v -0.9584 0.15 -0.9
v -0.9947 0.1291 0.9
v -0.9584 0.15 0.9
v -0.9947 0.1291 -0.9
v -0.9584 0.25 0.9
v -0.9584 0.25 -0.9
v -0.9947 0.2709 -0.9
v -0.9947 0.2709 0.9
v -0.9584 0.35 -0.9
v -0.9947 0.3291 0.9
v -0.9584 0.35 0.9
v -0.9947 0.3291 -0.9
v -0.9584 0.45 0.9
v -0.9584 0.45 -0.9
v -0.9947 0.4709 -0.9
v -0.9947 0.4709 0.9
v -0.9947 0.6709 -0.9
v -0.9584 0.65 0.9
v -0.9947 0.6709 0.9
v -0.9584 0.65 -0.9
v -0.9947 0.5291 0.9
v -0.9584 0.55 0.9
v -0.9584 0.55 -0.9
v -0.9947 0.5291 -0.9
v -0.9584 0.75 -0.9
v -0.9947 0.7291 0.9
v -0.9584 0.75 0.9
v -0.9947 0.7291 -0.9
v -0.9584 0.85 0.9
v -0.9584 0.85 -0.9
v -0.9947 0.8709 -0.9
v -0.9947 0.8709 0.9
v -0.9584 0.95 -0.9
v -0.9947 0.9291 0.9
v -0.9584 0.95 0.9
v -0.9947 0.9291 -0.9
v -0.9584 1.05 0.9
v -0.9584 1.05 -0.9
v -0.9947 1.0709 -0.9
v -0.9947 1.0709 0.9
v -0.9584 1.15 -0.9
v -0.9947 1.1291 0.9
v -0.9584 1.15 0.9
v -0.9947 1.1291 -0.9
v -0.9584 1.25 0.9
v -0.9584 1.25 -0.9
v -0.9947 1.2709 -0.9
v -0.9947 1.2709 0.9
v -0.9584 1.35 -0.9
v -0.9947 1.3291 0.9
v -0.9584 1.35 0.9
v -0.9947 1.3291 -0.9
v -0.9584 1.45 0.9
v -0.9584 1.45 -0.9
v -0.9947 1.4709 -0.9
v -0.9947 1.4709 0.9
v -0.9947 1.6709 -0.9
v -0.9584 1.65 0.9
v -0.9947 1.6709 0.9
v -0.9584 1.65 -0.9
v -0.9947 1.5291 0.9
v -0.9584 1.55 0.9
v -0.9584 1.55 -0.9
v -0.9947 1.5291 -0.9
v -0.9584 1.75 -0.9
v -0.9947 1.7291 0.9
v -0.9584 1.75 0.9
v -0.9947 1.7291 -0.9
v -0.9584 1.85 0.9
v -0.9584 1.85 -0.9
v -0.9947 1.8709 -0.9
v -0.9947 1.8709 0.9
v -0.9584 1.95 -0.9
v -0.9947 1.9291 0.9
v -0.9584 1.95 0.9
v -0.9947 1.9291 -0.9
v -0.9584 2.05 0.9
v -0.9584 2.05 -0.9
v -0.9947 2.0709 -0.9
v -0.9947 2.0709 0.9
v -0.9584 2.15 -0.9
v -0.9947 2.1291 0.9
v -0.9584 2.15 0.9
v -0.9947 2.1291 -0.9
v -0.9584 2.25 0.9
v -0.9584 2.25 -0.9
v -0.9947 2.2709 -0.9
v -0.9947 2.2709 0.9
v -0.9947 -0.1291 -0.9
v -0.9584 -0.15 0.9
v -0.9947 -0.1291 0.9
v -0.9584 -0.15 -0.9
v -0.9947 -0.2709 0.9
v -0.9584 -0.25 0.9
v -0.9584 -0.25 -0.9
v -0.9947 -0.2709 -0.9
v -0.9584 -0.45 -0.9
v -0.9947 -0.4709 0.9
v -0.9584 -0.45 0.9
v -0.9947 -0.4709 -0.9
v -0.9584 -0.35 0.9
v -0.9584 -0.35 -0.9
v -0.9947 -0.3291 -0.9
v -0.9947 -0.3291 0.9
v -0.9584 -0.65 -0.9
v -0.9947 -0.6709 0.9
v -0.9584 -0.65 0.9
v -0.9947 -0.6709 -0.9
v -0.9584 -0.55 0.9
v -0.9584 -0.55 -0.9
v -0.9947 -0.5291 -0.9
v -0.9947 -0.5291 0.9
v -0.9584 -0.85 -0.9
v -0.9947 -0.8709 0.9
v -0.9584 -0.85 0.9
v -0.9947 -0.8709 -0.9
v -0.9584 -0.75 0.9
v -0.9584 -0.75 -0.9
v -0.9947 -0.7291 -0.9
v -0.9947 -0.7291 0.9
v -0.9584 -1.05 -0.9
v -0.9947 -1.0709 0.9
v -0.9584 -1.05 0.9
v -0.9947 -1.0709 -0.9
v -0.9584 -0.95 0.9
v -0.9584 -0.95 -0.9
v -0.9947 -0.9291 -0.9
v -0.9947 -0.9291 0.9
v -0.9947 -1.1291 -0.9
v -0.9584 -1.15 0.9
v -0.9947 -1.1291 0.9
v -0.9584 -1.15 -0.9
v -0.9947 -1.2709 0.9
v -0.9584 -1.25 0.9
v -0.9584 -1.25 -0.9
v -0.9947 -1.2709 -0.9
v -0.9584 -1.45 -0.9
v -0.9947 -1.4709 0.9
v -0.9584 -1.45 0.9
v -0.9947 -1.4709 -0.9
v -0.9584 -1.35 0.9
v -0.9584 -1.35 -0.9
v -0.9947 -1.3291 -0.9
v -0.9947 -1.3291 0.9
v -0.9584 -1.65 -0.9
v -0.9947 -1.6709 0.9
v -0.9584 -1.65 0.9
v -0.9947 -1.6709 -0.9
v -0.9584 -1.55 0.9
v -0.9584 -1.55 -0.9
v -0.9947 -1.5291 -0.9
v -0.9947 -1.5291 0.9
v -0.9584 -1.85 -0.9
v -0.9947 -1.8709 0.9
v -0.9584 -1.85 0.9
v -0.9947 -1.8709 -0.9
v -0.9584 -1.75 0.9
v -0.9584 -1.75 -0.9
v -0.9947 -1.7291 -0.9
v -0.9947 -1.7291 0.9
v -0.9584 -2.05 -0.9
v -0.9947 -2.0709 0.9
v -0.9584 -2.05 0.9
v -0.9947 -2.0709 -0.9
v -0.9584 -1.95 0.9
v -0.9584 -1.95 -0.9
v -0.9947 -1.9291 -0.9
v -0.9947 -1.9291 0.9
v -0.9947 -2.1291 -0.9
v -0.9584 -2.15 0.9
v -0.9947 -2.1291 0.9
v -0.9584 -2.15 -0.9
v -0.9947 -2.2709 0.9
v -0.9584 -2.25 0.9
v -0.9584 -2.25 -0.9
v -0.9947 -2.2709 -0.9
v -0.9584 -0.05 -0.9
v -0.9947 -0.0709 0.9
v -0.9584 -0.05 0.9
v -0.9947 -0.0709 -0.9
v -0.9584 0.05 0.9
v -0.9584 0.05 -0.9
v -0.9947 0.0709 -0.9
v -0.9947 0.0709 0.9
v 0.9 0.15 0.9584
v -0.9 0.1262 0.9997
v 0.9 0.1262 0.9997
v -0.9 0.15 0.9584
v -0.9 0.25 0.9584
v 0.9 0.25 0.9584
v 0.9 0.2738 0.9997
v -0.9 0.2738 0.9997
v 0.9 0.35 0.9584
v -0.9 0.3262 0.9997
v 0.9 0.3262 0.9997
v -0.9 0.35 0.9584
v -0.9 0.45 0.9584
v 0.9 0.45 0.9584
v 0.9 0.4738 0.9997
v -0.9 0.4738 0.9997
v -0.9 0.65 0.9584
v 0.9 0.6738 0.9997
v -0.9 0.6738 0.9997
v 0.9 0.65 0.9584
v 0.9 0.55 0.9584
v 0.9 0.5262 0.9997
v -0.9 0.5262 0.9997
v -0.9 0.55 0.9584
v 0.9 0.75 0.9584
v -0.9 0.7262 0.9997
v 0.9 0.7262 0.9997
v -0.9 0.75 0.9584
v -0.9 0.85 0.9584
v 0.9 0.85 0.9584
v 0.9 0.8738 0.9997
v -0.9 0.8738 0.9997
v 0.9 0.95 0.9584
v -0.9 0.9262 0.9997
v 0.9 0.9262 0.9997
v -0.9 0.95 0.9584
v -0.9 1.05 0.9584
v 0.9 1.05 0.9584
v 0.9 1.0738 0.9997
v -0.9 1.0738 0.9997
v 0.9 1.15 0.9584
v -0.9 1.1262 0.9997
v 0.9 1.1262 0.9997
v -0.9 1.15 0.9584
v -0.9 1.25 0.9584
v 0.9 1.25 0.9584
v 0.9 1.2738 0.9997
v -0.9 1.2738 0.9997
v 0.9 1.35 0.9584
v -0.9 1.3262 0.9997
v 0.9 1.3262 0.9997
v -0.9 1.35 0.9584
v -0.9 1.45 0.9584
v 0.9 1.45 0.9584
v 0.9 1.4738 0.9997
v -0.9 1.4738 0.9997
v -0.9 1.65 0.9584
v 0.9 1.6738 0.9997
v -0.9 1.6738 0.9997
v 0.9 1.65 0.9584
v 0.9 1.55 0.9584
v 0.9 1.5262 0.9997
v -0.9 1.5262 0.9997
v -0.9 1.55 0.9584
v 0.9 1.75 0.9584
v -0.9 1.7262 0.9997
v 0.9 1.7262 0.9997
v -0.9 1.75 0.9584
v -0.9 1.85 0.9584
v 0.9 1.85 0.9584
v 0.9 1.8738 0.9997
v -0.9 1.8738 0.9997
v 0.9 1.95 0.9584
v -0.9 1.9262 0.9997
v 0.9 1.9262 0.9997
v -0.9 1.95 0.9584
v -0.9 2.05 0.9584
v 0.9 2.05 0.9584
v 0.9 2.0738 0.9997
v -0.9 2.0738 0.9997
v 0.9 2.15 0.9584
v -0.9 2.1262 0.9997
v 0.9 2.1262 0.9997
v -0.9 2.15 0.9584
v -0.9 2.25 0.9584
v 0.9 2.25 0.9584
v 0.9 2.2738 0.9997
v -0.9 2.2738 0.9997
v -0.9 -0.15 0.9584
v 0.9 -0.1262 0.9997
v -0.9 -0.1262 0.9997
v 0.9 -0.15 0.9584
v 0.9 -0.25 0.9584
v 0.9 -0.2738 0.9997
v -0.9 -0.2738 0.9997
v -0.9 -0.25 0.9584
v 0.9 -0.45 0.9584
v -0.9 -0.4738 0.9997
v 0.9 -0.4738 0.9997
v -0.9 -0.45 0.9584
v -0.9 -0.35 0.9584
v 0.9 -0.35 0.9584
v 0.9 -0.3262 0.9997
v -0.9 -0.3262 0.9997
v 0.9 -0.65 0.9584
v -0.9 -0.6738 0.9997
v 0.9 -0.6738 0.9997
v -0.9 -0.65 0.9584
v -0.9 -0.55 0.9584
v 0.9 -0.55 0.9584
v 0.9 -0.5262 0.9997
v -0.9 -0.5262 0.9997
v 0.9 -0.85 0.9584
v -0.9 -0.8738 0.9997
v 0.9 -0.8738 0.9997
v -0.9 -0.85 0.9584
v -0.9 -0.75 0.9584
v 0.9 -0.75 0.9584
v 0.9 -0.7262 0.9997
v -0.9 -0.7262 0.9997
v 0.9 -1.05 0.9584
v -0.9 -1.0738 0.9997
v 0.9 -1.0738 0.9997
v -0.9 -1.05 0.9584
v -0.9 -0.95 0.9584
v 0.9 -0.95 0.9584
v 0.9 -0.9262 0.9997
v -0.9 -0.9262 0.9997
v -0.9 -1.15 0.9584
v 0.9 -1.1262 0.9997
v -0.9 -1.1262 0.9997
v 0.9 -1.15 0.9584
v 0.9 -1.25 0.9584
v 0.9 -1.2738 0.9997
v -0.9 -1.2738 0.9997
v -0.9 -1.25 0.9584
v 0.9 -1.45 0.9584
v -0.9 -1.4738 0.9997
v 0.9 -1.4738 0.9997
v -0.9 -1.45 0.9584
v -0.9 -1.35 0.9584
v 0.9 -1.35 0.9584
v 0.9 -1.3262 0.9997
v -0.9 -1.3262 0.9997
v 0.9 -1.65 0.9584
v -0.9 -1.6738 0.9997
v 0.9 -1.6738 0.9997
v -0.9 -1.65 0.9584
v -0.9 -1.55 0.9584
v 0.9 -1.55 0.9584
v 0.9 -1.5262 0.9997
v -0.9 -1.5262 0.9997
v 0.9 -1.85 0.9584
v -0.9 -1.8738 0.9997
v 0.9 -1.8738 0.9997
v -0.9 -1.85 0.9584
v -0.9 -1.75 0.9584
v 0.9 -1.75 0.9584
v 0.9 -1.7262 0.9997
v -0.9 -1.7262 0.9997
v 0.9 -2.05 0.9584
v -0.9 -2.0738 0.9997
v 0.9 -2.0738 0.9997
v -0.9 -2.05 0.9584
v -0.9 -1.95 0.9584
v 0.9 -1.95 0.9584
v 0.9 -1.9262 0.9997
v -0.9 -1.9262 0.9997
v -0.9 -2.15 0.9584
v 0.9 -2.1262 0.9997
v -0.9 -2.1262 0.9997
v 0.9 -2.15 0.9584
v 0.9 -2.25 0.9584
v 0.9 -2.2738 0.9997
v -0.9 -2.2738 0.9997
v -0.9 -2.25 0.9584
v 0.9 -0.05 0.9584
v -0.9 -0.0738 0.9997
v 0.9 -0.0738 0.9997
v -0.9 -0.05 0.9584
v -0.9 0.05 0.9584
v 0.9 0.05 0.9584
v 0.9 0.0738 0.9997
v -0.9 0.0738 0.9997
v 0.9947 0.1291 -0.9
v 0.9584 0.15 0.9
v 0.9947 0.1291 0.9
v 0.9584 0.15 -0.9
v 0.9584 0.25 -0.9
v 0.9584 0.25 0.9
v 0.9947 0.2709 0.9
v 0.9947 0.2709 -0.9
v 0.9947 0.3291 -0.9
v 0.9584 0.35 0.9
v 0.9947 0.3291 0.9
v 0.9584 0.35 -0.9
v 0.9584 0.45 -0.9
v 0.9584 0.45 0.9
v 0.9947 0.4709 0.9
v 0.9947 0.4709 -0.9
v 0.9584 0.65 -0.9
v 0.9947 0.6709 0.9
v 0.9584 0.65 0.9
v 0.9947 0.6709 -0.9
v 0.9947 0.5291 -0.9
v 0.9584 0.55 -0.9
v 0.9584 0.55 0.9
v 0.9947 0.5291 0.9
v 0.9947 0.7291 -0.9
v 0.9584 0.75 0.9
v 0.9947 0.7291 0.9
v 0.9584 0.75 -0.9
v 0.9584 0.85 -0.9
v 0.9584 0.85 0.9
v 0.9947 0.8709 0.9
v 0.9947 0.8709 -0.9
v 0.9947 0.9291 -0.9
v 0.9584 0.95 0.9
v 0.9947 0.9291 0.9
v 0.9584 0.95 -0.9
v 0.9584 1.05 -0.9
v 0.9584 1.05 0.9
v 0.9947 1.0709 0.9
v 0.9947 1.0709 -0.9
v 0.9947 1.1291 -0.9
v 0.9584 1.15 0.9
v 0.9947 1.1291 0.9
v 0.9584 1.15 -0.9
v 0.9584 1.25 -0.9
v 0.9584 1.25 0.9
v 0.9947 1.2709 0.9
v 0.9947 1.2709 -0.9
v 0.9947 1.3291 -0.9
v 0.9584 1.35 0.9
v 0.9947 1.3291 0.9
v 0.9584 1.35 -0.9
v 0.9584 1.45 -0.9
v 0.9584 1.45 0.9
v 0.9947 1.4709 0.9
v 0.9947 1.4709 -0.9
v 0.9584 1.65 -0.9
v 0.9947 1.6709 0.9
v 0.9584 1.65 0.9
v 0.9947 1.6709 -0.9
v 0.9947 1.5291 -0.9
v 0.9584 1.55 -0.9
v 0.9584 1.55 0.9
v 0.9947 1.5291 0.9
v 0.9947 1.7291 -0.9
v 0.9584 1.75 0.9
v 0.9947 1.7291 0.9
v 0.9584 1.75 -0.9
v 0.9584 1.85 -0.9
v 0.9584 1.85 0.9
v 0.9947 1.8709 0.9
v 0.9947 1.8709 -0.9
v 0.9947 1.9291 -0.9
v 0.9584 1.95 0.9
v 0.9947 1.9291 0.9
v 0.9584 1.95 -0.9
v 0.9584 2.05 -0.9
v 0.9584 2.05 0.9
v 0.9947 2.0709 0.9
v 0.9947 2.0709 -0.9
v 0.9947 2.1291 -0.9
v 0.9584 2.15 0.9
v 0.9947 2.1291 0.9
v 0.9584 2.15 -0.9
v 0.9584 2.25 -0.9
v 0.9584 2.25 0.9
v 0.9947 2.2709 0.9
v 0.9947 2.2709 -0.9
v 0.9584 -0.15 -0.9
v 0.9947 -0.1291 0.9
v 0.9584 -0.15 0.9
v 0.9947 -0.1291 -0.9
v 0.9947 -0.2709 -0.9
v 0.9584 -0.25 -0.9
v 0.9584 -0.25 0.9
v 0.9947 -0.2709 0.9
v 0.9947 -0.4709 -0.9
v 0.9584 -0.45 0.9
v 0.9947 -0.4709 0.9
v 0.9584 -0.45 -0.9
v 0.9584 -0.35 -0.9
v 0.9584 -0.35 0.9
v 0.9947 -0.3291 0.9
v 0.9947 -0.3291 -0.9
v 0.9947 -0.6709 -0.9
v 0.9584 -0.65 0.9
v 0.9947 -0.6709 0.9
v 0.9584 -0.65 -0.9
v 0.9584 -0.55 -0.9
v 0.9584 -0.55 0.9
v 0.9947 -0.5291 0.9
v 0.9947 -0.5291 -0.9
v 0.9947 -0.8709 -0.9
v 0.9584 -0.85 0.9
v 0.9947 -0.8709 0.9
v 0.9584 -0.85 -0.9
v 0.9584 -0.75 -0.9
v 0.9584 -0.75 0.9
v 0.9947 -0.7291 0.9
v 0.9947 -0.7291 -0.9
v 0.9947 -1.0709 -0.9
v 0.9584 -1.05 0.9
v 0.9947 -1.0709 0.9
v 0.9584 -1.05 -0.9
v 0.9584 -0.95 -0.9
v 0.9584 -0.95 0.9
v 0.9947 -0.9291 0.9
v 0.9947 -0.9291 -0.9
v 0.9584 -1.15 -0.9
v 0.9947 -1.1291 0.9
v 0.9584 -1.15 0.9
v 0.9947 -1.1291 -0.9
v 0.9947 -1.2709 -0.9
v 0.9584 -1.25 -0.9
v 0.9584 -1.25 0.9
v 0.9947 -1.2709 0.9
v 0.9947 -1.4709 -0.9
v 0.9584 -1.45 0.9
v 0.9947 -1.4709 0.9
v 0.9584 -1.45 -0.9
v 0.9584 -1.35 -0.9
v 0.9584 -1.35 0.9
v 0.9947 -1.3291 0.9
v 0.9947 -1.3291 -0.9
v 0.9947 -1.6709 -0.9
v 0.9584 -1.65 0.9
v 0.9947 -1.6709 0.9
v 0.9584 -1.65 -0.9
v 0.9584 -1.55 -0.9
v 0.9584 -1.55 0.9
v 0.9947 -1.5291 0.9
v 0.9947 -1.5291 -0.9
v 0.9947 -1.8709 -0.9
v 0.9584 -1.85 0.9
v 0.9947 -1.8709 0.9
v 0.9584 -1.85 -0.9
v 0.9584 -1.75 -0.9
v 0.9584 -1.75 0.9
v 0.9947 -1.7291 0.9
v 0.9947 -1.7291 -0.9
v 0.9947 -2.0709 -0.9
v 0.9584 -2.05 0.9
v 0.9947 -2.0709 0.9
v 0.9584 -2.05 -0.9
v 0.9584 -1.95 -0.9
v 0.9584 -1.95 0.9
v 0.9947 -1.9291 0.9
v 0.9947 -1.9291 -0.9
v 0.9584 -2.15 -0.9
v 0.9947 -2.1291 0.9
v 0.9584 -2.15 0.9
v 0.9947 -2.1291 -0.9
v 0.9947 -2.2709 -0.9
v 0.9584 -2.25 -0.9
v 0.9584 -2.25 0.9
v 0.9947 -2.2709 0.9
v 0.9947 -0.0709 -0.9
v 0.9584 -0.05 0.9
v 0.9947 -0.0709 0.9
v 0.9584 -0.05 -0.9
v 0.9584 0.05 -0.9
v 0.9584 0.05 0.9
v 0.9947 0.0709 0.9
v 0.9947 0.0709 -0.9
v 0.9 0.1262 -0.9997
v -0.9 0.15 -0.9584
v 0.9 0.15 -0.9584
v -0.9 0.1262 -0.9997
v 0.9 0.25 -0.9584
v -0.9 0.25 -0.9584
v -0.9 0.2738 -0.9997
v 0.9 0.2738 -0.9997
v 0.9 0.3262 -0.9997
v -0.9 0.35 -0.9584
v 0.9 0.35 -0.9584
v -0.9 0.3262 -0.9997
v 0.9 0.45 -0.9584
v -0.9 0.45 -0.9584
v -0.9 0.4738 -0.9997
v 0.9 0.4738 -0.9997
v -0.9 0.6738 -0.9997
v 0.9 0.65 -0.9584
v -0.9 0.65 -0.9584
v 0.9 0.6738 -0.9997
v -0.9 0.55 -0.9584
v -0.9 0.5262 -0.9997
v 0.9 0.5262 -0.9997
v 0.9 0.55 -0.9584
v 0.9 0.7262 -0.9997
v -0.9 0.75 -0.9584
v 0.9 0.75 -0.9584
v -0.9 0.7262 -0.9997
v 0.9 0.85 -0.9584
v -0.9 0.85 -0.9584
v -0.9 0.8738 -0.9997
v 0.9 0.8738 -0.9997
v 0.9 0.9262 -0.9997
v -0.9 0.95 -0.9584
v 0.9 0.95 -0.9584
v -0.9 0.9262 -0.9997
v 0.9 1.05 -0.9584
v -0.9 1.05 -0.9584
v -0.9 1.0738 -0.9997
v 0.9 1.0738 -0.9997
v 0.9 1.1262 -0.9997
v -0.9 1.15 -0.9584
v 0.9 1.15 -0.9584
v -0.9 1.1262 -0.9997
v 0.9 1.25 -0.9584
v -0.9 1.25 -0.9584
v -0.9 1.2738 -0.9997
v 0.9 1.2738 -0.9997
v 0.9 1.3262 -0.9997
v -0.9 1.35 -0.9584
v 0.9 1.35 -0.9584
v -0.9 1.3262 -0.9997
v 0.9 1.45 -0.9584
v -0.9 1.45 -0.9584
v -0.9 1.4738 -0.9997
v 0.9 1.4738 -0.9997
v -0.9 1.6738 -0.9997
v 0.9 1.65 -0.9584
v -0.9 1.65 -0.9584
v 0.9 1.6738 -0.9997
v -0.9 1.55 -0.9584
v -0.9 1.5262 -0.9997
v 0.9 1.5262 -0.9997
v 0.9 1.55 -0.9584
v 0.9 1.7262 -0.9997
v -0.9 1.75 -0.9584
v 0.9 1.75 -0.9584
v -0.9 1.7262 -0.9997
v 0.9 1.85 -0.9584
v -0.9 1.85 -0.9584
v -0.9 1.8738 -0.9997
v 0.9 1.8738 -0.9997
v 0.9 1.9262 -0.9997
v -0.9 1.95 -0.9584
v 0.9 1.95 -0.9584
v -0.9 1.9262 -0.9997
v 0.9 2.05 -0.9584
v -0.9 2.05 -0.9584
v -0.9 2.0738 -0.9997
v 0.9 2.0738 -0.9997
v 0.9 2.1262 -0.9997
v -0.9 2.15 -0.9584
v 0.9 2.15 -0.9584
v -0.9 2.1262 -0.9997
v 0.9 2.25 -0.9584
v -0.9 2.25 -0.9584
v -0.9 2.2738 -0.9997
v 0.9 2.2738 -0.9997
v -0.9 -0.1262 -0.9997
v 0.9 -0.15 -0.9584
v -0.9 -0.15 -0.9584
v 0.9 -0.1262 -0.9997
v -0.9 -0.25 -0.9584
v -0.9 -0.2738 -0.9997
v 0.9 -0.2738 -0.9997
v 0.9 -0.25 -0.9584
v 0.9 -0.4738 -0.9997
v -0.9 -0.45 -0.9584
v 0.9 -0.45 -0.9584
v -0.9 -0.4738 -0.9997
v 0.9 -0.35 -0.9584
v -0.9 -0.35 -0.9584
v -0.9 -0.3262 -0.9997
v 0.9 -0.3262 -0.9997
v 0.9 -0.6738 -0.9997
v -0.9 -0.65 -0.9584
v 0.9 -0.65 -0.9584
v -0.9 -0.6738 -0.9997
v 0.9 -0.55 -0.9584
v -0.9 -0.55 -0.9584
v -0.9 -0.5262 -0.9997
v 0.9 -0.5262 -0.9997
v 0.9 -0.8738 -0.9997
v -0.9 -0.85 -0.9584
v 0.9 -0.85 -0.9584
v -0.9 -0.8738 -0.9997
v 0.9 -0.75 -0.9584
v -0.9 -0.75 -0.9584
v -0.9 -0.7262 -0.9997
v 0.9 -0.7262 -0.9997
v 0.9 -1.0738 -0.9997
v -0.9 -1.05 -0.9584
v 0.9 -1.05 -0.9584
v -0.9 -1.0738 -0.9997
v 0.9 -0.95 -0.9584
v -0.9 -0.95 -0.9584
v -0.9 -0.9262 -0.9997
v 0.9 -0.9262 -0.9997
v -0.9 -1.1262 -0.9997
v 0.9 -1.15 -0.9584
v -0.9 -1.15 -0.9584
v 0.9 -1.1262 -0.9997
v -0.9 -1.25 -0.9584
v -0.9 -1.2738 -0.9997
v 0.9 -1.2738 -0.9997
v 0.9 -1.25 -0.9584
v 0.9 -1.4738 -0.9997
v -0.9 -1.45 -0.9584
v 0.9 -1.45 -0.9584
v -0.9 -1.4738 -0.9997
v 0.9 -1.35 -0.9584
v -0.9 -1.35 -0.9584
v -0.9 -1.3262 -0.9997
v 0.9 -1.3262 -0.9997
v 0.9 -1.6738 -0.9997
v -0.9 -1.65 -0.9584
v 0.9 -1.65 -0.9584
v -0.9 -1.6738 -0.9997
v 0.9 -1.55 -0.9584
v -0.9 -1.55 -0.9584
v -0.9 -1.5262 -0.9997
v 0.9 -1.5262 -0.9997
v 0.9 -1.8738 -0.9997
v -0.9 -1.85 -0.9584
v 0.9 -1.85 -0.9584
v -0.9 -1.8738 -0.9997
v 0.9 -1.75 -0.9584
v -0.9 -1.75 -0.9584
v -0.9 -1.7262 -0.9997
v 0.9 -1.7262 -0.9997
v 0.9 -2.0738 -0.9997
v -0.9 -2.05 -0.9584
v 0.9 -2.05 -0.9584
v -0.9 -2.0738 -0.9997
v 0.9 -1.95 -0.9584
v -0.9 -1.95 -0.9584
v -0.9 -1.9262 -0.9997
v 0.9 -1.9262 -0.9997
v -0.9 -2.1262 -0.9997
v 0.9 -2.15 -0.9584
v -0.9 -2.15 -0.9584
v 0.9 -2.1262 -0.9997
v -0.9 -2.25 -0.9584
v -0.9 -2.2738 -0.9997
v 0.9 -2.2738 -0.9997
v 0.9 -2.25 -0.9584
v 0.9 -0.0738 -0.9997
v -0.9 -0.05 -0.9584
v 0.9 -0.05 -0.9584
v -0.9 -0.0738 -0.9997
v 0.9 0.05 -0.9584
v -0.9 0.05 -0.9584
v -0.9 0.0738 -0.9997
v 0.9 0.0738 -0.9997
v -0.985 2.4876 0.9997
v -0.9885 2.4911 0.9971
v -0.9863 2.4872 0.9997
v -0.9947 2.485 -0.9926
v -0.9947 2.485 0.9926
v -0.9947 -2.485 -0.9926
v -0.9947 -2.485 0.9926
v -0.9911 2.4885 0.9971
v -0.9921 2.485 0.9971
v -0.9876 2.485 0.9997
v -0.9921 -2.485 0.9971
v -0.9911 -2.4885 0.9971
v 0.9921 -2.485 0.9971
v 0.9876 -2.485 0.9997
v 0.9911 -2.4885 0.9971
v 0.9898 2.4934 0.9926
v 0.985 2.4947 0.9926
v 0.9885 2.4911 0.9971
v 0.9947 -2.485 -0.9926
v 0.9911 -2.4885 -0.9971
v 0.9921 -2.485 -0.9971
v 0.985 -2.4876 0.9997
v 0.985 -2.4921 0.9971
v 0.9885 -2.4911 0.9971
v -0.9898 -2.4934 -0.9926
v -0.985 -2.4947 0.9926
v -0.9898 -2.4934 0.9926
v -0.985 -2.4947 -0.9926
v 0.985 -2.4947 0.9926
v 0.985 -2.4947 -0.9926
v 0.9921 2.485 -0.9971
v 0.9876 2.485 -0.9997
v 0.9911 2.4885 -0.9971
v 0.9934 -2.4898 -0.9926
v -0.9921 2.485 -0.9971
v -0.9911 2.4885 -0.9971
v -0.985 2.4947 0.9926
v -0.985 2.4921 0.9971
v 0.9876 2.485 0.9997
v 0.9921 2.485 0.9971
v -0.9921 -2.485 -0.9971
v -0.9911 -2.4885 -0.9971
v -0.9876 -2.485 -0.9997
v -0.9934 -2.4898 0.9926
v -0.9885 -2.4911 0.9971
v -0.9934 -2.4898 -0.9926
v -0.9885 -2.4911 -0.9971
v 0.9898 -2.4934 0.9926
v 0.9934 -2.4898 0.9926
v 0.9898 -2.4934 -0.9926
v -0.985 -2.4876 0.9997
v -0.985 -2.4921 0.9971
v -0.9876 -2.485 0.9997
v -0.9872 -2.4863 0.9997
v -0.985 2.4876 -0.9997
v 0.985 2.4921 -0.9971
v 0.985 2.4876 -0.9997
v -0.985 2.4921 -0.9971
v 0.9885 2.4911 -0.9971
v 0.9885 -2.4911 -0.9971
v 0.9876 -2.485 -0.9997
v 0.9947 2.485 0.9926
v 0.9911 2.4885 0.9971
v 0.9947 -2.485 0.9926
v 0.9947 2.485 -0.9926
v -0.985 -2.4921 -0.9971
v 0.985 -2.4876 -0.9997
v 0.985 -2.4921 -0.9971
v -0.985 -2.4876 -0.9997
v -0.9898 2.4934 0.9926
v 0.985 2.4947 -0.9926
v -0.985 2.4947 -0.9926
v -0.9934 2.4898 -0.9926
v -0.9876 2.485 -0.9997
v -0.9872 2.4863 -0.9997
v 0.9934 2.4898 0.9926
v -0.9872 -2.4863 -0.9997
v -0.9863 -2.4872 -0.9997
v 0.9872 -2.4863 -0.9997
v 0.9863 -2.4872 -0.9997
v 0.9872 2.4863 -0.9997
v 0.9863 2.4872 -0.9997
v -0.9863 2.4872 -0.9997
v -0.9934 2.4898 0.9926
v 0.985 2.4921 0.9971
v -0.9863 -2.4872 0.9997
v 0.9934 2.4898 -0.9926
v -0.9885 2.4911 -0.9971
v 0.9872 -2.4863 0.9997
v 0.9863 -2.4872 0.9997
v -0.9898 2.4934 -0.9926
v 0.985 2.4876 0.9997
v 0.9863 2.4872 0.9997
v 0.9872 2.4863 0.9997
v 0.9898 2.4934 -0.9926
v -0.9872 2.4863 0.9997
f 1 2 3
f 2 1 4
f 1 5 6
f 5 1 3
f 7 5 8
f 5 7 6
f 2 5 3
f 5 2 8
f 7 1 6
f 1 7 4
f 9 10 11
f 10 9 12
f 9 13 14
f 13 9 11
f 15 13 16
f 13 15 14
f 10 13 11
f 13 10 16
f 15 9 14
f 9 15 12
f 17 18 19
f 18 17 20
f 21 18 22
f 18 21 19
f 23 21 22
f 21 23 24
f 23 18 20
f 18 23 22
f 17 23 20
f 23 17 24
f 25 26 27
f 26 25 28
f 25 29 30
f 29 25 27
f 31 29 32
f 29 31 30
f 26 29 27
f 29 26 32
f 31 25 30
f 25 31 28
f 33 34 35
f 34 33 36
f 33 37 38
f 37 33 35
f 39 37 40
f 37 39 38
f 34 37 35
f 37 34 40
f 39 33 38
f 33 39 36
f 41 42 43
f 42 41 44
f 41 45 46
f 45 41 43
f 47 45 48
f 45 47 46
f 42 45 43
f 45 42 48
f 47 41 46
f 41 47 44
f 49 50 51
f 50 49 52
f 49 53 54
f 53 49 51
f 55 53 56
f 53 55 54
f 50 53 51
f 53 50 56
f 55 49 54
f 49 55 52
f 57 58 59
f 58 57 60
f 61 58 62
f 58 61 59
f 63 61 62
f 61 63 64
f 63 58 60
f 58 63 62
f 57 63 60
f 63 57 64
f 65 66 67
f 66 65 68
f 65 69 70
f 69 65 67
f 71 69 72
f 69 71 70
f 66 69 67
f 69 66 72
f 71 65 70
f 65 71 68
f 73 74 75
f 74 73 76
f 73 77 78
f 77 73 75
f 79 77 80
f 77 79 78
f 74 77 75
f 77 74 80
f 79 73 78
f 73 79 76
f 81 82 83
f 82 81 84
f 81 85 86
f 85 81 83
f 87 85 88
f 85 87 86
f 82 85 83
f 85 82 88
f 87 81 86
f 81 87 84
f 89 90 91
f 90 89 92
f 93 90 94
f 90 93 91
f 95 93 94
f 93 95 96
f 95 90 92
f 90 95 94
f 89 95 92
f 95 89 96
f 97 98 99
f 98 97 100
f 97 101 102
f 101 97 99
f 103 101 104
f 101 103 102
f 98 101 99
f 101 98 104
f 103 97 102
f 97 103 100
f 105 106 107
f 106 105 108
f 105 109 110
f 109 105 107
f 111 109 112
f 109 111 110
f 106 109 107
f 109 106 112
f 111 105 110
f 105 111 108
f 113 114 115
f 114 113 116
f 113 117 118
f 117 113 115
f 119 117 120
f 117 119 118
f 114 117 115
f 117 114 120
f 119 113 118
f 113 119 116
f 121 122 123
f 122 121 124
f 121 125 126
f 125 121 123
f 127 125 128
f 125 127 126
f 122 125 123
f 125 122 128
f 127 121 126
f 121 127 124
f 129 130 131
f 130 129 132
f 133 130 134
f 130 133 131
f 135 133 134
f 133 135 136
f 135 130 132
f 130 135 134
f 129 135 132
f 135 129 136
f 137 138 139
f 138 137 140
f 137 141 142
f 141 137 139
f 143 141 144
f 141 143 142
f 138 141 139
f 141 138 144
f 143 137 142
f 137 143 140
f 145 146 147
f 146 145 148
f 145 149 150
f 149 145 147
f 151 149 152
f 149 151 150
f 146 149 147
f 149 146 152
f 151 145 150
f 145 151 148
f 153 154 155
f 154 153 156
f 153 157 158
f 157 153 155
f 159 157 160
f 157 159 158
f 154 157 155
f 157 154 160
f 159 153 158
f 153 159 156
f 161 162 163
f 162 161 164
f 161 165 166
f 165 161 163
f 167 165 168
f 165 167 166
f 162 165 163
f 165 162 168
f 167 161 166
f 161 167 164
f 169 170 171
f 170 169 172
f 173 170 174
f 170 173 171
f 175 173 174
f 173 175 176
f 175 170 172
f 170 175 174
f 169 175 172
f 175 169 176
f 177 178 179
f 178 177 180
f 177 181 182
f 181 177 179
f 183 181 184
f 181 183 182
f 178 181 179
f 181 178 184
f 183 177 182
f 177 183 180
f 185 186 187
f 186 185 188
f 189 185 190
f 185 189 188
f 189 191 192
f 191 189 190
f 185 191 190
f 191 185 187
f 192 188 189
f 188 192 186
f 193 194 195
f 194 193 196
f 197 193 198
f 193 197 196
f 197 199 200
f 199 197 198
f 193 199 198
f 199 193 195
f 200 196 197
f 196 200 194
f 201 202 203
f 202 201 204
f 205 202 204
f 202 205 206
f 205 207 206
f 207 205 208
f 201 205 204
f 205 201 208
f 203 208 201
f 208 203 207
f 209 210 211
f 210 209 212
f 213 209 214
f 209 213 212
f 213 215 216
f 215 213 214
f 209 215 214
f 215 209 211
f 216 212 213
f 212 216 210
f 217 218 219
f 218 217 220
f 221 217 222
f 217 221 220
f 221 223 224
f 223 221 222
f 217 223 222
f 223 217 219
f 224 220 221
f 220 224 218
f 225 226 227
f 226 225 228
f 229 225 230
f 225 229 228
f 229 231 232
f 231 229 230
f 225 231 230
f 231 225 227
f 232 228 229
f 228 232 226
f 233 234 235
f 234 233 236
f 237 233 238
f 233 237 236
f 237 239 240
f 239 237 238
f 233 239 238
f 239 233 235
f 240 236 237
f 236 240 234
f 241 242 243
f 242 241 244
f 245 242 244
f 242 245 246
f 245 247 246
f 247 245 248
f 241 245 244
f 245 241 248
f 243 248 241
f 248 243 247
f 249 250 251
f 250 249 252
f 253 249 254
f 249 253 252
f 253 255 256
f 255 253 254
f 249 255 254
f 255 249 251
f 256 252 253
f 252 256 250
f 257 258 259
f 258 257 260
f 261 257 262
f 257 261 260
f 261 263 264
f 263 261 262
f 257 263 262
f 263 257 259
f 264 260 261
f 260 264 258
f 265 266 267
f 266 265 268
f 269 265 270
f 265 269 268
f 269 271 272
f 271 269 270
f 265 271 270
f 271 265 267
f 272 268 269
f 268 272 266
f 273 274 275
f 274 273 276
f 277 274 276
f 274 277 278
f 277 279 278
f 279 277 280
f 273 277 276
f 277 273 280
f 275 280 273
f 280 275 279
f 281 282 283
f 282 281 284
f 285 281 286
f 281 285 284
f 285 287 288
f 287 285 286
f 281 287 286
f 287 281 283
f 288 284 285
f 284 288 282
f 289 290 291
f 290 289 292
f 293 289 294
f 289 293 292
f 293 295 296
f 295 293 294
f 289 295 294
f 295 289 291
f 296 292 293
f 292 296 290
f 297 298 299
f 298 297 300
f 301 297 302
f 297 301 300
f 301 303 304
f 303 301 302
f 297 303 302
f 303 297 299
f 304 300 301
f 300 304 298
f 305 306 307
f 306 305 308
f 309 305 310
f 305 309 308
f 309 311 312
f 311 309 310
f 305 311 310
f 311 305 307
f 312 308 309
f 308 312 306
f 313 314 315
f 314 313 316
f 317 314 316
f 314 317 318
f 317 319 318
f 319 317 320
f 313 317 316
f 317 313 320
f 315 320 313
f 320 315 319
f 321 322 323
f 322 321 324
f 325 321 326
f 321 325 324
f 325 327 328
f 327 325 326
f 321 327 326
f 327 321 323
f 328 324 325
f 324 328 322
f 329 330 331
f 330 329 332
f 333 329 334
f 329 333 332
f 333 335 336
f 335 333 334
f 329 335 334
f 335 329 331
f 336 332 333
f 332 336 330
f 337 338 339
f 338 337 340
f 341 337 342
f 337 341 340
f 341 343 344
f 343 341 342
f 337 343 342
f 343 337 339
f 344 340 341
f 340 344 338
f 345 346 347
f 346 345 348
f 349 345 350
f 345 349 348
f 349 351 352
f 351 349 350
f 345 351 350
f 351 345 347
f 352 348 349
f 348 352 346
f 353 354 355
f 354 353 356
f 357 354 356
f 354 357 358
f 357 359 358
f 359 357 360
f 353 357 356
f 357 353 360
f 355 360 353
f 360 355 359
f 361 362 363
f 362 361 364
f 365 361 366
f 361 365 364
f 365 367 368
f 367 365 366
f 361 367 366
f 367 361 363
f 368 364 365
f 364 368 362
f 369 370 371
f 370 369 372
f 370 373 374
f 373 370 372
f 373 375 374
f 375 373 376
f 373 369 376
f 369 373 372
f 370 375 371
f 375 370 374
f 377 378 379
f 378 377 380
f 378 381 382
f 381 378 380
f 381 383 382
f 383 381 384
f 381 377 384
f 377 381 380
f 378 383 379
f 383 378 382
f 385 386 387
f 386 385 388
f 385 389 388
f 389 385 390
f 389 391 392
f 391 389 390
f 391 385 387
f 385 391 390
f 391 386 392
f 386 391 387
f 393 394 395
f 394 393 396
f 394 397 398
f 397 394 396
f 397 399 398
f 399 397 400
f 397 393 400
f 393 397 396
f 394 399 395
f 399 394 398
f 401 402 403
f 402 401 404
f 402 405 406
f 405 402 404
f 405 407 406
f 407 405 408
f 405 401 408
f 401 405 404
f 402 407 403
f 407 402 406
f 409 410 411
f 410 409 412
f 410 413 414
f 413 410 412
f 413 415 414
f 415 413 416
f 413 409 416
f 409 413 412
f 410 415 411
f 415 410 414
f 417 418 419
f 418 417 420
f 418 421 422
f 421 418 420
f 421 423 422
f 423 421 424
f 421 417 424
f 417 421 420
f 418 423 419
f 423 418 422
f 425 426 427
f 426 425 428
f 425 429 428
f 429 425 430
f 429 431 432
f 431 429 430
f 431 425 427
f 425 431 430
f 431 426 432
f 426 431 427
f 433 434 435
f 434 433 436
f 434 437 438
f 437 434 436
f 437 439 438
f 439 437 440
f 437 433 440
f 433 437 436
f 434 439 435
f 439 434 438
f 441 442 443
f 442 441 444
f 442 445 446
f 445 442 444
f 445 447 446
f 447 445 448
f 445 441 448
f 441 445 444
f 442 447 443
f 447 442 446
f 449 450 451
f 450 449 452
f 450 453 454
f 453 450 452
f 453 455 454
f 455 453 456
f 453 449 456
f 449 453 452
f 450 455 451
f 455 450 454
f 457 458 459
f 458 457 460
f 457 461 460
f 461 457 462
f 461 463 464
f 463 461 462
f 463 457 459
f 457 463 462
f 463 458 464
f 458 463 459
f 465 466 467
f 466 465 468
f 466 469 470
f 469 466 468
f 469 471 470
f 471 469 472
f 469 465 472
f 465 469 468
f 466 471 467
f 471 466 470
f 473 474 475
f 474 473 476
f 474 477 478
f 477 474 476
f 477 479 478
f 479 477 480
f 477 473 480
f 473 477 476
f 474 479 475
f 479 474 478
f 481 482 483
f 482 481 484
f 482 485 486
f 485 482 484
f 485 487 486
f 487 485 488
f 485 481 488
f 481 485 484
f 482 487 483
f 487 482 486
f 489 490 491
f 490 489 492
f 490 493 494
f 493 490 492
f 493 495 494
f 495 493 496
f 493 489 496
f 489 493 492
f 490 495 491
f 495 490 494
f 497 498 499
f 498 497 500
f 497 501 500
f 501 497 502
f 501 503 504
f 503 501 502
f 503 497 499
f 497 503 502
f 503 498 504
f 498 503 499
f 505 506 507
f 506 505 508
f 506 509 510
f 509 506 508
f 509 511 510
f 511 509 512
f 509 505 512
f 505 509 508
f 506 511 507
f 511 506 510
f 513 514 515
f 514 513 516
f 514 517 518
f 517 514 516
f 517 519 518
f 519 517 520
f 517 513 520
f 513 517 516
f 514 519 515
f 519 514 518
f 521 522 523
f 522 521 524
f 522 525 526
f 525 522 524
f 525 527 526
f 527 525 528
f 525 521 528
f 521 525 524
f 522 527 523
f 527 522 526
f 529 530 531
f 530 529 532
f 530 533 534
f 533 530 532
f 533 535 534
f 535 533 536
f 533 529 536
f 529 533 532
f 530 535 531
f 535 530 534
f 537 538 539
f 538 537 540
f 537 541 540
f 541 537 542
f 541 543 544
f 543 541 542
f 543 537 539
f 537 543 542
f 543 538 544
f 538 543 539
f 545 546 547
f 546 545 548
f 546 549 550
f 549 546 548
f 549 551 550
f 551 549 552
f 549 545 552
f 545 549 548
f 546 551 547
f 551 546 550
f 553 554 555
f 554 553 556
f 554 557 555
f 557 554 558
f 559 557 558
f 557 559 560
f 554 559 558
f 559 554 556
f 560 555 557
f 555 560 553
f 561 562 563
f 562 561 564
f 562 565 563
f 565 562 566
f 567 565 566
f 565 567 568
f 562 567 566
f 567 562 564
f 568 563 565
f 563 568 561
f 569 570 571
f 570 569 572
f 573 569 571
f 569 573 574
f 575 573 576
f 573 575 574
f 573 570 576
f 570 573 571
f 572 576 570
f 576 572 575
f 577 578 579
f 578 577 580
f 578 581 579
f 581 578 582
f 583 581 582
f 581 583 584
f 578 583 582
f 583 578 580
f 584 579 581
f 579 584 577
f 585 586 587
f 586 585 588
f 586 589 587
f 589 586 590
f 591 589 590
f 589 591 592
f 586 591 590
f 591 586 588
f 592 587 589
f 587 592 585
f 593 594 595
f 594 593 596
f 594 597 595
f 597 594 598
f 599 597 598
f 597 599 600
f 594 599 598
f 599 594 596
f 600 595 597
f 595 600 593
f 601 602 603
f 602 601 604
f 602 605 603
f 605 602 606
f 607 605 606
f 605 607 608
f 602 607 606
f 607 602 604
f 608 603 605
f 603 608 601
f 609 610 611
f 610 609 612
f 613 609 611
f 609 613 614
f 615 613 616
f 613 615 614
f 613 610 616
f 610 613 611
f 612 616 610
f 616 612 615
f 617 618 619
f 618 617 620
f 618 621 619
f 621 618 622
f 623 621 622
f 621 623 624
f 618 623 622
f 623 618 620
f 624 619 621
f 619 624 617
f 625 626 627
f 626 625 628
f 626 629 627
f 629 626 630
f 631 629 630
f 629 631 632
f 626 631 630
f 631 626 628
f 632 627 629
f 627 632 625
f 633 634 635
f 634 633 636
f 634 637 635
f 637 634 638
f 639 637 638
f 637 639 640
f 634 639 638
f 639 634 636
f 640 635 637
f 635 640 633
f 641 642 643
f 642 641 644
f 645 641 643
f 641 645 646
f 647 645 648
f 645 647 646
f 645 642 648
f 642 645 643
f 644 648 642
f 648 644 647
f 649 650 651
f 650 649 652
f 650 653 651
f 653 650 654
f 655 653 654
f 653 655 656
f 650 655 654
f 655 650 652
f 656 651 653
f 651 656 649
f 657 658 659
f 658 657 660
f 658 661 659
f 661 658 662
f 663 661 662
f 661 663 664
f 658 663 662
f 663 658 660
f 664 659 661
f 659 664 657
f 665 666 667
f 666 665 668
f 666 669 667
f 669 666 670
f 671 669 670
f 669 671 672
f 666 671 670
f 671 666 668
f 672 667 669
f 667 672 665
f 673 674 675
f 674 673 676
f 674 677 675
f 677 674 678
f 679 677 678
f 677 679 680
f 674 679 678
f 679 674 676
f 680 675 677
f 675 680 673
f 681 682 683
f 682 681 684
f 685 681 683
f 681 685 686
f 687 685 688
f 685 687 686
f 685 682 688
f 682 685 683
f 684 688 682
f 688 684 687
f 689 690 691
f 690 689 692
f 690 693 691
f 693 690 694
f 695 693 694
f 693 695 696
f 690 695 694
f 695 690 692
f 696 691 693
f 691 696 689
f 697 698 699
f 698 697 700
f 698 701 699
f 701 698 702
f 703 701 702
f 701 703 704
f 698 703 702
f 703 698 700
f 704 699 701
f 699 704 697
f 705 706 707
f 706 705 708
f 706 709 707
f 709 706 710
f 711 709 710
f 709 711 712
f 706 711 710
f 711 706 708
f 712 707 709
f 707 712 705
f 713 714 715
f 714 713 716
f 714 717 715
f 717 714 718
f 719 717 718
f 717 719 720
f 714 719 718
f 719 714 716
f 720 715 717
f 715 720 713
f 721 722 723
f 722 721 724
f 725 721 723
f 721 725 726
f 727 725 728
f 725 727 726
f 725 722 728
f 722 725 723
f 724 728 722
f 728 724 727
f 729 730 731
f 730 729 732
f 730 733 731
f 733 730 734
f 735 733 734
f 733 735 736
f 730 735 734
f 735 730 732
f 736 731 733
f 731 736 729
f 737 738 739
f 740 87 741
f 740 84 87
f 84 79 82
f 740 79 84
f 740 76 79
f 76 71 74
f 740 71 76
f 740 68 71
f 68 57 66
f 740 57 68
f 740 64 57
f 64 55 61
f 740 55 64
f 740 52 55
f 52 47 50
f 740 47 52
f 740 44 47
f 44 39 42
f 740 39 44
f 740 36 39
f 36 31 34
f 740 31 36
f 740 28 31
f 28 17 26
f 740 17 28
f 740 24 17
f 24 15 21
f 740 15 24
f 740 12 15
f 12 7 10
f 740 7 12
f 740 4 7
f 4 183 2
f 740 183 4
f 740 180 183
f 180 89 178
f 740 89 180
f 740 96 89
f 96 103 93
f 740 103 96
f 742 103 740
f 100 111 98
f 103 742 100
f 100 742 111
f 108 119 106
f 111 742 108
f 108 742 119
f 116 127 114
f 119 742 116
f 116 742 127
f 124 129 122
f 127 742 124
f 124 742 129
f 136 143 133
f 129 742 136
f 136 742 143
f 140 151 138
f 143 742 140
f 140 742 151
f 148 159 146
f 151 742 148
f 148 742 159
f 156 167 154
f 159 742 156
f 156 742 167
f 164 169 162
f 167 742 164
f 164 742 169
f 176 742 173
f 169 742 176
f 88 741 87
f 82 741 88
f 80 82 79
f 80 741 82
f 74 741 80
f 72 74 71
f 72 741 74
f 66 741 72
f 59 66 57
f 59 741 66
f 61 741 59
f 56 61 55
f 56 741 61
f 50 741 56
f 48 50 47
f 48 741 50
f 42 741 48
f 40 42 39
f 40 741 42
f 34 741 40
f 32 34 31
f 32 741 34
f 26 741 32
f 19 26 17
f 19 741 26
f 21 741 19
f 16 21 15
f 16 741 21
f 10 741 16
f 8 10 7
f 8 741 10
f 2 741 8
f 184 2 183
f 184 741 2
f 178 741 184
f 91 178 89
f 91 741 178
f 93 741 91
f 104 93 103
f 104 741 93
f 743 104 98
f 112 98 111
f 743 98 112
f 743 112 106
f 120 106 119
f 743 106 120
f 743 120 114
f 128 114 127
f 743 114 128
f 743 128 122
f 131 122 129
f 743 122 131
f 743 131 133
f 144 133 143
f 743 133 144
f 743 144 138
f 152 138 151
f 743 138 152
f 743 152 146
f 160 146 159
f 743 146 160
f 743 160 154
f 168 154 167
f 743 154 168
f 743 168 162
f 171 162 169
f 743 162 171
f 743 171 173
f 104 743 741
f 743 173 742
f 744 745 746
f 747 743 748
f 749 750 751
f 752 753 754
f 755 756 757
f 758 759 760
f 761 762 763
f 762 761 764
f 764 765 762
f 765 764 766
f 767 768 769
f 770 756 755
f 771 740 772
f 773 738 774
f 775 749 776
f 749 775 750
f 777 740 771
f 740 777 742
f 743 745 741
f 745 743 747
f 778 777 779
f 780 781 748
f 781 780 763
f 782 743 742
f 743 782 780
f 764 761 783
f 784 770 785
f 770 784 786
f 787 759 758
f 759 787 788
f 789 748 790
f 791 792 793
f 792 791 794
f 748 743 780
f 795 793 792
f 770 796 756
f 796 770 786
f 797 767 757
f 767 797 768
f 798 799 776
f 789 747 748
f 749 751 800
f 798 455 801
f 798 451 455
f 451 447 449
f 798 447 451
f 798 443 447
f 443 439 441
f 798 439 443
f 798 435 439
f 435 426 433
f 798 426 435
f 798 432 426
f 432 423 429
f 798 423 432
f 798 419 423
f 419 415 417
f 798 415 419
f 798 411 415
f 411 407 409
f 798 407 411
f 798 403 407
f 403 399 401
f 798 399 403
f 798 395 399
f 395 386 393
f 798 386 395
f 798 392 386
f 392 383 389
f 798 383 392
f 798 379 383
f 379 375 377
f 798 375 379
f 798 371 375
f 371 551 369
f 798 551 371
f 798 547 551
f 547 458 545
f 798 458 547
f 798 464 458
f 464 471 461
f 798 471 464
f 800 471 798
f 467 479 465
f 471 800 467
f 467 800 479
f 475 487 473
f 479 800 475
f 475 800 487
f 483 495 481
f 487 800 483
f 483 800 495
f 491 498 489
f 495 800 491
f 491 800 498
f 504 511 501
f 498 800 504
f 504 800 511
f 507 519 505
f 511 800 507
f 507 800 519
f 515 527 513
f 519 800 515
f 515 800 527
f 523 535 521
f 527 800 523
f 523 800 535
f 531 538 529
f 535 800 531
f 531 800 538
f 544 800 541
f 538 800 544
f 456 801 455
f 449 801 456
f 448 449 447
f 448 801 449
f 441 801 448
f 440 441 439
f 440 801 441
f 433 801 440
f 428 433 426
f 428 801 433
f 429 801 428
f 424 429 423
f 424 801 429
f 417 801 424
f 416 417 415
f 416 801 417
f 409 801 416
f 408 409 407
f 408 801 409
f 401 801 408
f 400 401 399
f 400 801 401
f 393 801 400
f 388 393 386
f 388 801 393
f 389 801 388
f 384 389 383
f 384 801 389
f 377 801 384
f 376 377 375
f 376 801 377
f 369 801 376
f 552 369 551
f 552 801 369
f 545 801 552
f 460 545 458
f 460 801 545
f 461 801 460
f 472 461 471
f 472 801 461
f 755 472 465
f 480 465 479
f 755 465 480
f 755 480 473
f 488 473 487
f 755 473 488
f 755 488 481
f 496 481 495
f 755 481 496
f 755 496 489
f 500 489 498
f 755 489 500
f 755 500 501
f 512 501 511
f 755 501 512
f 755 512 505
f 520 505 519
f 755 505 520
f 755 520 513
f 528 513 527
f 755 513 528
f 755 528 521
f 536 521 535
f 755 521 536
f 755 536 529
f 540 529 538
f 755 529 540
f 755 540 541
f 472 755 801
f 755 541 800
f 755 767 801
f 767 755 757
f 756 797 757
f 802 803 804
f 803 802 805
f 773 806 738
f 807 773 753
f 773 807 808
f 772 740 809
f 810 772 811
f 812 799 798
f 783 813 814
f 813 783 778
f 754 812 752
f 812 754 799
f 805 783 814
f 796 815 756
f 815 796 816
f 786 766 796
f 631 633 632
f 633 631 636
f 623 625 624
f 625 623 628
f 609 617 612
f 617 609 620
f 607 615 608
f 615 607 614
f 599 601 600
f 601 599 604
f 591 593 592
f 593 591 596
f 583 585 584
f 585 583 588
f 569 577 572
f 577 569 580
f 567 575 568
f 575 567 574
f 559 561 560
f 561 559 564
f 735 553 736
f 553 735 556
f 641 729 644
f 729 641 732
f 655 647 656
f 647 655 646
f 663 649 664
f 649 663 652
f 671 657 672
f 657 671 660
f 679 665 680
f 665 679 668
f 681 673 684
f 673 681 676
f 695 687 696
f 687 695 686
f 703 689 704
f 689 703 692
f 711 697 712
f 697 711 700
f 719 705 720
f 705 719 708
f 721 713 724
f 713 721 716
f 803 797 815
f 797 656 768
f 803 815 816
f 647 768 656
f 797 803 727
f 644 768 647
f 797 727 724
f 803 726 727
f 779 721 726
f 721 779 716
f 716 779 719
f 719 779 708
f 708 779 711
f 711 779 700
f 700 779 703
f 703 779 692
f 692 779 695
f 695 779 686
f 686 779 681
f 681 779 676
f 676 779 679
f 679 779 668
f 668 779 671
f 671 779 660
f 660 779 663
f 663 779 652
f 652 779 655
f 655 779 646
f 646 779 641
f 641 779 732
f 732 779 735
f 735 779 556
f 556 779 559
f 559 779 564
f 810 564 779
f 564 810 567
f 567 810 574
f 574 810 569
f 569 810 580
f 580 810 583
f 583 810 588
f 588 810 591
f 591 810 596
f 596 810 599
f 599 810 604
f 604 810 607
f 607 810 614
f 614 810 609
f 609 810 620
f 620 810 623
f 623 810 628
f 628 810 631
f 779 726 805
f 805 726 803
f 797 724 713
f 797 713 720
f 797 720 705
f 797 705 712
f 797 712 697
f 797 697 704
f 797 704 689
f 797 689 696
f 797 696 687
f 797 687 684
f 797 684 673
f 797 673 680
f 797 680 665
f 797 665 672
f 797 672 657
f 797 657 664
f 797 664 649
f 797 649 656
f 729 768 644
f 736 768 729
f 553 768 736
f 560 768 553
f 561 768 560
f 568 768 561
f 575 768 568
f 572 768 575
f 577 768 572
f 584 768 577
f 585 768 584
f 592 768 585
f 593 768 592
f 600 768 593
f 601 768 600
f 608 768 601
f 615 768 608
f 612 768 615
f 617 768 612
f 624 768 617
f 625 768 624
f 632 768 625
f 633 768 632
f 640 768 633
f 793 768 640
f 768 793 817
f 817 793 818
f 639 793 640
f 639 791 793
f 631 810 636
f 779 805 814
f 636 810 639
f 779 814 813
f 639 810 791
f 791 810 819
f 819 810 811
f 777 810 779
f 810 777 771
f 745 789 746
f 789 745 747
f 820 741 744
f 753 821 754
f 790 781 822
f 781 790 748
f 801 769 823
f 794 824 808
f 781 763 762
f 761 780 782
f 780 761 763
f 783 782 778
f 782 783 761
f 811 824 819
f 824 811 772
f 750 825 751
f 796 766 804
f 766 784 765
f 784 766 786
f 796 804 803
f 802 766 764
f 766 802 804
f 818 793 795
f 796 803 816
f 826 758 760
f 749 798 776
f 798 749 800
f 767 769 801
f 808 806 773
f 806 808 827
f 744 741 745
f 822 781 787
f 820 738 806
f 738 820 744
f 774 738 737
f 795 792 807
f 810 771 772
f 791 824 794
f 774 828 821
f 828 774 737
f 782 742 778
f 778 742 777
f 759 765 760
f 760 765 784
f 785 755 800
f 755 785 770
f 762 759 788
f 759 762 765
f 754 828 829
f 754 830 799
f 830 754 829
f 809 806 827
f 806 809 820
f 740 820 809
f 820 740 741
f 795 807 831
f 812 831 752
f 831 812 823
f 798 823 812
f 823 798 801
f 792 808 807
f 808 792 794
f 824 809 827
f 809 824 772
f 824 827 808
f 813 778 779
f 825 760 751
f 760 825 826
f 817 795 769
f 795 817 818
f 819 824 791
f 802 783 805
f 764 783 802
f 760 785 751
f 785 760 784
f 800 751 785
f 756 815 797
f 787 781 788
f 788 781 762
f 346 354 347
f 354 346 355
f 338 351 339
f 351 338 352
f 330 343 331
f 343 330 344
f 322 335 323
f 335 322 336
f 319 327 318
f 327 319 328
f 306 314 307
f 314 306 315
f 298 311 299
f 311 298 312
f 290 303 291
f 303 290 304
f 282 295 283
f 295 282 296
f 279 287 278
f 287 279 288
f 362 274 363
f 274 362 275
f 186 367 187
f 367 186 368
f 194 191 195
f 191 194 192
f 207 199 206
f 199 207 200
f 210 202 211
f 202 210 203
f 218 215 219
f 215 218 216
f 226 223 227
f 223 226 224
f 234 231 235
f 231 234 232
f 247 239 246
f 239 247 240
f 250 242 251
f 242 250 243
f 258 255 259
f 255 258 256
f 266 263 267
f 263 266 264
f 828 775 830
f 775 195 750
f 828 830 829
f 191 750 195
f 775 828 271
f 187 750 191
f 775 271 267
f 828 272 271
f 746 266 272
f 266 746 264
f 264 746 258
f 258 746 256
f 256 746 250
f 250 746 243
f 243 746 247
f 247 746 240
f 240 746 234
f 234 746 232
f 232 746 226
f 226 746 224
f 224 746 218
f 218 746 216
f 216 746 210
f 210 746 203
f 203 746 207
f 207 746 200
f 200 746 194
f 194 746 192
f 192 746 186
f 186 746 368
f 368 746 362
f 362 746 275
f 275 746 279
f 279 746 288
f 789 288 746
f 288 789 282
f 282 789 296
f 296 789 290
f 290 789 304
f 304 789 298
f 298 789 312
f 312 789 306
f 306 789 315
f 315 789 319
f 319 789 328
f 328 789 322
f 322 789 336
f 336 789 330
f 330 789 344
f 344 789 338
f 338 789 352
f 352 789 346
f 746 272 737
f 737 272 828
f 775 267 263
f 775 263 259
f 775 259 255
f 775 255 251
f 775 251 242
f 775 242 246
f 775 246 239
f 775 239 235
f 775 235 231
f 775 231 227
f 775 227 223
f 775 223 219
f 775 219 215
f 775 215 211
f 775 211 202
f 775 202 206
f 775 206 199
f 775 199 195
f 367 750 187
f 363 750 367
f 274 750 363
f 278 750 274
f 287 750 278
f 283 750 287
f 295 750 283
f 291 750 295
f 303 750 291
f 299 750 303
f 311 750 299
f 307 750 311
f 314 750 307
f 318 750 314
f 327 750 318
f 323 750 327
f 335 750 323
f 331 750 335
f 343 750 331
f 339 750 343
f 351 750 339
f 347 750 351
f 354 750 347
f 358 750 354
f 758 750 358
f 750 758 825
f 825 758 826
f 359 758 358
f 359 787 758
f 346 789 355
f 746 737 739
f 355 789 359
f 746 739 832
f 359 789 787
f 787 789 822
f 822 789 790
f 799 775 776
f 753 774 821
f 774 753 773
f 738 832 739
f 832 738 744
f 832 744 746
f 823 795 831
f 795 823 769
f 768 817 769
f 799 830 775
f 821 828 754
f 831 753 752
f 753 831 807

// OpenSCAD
// file: lib.scad
function x(v) = v[0];
function y(v) = v[1];
function z(v) = v[2];
function add(v1,v2) = [ for (i = [ 0 : len(v1)-1 ]) v1[i] + v2[i] ];
function xv(d) = [d,0,0];
function yv(d) = [0,d,0];
function zv(d) = [0,0,d];

module box(v) { cube(size=v, center=true); }
module cyl(r1,r2,h) { cylinder(r1=r1, r2=r2, h=h, center=true); }

function grow(n,v) = [x(v)+n*2, y(v)+n*2, z(v)+n*2];

module rbox(v, radius=1) {
	cx = x(v)/2-radius;
	cy = y(v)/2-radius;
	cz = z(v)/2-radius;

	hull() {
		translate([cx,cy,cz]) sphere(r=radius);
		translate([cx,cy,-cz]) sphere(r=radius);
		translate([cx,-cy,cz]) sphere(r=radius);
		translate([cx,-cy,-cz]) sphere(r=radius);
		translate([-cx,cy,cz]) sphere(r=radius);
		translate([-cx,cy,-cz]) sphere(r=radius);
		translate([-cx,-cy,cz]) sphere(r=radius);
		translate([-cx,-cy,-cz]) sphere(r=radius);
	}
}

module fillet(r=1) {
  minkowski() {
    difference() {
      children();
      minkowski() {
        difference() {
          minkowski() {
            children();
            sphere(r=r);
          }
          children();
        }
        sphere(r=r);
      }
    }
    sphere(r=r);
  }
}
// main file
use <lib.scad>

bounds = [2,5,2];
body = [1.99, 4.99, 2];

module sideCutOuts() {
	union() {
		translate([-0.05,0,0]) rotate([0,0,30]) cyl(0.1, 0.1, z(body)-0.2, $fn=6);
		for (i = [1:11])
			translate([0,0.2*i,0]) translate([-0.05,0,0]) rotate([0,0,30]) cyl(0.1, 0.1, z(body)-0.2, $fn=6);
		for (i = [1:11])
			translate([0,-0.2*i,0]) translate([-0.05,0,0]) rotate([0,0,30]) cyl(0.1, 0.1, z(body)-0.2, $fn=6);
	}
}

difference() {
	rbox(body,0.01,$fn=12);
	rotate([0,000,0]) translate([-x(body)/2,0,0]) sideCutOuts();
	rotate([0,090,0]) translate([-x(body)/2,0,0]) sideCutOuts();
	rotate([0,180,0]) translate([-x(body)/2,0,0]) sideCutOuts();
	rotate([0,270,0]) translate([-x(body)/2,0,0]) sideCutOuts();
}
